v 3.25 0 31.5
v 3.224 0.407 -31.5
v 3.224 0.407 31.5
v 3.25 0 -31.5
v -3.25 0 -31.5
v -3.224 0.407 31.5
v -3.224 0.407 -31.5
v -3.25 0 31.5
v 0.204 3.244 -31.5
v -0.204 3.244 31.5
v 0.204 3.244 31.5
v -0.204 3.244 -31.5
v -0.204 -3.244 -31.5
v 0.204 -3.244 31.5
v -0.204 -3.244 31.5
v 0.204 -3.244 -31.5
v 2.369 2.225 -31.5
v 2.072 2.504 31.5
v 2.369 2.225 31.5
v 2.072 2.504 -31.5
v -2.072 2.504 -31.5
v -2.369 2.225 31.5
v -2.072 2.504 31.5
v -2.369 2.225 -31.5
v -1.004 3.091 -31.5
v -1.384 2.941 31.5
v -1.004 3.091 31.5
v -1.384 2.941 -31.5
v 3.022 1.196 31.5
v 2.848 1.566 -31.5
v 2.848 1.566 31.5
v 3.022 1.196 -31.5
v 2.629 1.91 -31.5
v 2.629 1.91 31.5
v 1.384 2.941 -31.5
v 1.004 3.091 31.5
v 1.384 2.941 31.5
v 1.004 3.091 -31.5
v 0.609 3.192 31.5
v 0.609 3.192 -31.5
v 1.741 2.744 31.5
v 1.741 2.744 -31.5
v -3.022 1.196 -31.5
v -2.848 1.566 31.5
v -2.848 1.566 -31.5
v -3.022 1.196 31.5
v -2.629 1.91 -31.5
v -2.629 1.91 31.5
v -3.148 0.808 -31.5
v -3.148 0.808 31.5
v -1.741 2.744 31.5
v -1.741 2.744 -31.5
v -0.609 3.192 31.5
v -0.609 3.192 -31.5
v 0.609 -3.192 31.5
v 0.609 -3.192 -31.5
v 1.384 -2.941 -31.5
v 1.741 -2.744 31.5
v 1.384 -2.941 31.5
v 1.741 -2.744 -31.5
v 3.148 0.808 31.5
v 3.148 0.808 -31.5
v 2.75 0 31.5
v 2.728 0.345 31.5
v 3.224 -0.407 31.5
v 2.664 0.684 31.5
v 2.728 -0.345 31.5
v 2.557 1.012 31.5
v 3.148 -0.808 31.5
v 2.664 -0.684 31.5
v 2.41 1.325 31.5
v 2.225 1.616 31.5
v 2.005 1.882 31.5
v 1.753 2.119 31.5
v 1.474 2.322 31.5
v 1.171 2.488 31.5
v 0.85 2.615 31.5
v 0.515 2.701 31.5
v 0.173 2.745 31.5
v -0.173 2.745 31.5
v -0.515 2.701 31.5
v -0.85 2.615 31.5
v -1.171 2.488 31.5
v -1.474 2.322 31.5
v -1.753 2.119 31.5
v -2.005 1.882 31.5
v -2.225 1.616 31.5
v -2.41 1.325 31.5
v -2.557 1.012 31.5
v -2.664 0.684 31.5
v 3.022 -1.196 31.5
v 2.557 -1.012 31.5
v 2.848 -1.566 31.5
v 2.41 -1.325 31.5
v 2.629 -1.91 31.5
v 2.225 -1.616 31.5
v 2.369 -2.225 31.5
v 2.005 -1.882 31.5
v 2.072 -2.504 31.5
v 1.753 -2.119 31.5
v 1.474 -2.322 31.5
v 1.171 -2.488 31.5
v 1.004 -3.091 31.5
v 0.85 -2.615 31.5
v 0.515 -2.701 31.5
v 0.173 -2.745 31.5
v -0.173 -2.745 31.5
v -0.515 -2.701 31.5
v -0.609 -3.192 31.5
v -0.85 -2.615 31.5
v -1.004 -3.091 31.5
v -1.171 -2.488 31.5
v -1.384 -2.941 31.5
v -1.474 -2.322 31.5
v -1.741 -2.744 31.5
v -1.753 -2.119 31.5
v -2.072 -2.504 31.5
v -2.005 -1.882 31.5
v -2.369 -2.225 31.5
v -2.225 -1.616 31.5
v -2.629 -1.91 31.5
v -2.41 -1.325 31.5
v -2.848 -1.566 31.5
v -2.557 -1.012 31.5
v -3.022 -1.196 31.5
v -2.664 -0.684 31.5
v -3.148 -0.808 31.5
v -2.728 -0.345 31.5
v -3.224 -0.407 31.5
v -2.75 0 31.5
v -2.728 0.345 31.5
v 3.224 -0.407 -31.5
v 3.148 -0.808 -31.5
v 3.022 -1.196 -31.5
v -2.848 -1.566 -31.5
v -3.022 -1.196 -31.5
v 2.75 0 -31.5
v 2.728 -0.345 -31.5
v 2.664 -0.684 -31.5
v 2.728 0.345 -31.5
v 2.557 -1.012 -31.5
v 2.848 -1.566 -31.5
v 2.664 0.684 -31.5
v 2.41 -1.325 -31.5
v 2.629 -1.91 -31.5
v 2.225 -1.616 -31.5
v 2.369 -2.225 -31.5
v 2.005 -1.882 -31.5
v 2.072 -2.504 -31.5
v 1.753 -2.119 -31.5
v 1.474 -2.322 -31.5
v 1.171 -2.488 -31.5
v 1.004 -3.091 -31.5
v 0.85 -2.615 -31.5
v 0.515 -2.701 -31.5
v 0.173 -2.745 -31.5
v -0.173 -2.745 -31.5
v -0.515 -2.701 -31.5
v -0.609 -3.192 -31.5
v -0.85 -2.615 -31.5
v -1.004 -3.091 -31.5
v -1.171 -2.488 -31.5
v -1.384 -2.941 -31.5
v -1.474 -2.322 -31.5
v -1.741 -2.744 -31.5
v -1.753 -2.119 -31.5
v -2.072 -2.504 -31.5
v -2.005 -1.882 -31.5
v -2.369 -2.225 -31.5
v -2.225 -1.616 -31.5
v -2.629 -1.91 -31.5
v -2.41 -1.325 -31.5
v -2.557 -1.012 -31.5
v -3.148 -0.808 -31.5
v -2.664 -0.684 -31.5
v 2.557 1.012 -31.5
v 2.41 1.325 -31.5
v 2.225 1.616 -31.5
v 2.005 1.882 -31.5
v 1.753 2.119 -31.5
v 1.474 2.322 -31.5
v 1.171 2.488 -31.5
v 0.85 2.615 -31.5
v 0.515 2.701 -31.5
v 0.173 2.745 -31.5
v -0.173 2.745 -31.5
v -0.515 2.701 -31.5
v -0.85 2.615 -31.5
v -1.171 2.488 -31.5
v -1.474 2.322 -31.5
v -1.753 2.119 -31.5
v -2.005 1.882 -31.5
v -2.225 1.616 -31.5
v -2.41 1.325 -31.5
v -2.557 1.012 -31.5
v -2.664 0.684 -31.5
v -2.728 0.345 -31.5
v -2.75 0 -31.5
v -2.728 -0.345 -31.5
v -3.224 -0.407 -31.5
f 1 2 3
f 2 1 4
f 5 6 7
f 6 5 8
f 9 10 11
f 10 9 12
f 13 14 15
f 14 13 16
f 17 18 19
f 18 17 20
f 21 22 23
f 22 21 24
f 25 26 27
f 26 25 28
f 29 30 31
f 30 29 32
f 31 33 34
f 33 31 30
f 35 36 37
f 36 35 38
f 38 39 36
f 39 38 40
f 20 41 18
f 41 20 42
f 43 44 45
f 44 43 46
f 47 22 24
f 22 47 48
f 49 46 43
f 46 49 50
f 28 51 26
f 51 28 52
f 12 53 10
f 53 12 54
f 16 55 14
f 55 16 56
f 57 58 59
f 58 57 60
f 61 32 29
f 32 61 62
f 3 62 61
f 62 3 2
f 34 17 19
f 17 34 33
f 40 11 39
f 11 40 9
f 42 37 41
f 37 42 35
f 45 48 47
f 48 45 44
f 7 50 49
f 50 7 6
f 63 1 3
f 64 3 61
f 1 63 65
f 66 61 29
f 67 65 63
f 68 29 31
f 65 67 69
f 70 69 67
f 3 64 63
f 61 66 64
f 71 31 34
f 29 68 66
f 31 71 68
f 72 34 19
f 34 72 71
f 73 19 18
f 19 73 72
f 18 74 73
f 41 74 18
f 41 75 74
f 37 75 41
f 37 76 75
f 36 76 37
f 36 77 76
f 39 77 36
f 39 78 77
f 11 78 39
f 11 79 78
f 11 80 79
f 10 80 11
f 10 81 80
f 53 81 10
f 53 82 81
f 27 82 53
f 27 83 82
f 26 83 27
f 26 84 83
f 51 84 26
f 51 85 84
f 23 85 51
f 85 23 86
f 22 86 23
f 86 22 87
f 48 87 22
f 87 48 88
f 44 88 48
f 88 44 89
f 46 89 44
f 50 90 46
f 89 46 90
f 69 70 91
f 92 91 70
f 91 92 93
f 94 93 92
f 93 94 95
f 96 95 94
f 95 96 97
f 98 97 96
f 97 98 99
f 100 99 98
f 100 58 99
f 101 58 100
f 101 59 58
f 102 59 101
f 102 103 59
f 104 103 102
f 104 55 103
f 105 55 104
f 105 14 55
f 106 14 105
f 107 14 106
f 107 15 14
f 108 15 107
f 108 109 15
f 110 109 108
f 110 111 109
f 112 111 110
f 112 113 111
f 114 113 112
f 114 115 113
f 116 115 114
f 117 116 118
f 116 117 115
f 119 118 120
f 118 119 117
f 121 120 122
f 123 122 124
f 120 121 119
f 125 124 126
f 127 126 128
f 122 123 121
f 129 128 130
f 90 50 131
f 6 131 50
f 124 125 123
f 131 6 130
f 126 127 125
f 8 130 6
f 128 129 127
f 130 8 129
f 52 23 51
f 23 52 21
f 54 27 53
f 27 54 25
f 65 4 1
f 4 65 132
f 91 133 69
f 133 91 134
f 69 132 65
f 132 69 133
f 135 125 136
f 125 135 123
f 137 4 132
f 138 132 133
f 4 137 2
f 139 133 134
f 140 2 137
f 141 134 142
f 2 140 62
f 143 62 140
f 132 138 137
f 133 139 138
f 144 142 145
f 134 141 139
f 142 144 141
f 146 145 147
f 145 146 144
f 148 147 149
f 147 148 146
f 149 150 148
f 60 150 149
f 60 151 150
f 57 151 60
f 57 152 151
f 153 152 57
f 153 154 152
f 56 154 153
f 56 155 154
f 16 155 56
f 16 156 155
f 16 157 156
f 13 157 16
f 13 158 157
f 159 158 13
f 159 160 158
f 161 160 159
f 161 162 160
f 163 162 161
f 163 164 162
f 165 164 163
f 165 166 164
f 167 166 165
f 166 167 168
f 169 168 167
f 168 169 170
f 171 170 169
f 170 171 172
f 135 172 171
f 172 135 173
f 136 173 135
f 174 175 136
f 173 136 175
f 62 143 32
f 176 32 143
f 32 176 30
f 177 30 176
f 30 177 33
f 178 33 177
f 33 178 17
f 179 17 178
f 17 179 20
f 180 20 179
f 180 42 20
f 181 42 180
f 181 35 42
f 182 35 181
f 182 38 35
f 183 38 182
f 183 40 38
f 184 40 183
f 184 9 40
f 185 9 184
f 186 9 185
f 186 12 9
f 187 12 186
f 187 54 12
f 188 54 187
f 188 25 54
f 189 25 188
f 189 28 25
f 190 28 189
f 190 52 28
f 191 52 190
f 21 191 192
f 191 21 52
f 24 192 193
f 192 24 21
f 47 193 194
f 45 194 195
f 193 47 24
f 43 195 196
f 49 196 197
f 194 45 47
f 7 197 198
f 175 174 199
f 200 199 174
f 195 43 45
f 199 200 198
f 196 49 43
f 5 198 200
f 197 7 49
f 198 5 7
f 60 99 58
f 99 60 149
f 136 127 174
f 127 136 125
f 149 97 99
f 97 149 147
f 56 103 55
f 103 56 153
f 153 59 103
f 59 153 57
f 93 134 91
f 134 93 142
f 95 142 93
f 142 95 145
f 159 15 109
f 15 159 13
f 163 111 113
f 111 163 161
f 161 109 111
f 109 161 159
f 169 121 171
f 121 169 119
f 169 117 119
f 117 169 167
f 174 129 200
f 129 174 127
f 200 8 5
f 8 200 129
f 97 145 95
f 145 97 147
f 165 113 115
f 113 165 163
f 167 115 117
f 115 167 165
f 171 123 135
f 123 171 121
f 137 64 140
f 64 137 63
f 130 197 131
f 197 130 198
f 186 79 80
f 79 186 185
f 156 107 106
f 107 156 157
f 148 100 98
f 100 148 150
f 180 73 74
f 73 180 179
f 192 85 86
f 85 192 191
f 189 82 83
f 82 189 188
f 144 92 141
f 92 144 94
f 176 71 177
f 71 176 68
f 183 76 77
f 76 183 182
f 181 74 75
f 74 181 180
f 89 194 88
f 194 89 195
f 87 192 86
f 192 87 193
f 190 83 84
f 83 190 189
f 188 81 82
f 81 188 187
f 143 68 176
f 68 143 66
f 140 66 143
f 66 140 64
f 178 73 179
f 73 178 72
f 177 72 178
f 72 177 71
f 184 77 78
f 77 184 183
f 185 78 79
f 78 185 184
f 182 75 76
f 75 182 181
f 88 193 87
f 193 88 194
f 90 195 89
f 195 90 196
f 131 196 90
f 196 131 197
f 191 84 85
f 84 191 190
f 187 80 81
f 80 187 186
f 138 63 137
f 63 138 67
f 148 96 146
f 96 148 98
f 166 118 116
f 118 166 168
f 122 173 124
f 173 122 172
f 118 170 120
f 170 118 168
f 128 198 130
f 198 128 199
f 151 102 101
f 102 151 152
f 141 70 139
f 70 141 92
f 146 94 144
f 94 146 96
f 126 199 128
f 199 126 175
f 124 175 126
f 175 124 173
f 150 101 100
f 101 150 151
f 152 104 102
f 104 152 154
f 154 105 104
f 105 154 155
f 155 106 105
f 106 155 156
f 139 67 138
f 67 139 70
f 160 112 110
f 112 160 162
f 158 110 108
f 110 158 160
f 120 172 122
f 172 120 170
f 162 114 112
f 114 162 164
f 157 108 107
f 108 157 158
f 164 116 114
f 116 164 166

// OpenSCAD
$fn = 50;


difference() {
	union() {
		translate(v = [0, 0, -31.5000000000]) {
			cylinder(h = 63, r = 3.2500000000);
		}
	}
	union() {
		translate(v = [0, 0, -100.0000000000]) {
			cylinder(h = 200, r = 2.7500000000);
		}
	}
}
